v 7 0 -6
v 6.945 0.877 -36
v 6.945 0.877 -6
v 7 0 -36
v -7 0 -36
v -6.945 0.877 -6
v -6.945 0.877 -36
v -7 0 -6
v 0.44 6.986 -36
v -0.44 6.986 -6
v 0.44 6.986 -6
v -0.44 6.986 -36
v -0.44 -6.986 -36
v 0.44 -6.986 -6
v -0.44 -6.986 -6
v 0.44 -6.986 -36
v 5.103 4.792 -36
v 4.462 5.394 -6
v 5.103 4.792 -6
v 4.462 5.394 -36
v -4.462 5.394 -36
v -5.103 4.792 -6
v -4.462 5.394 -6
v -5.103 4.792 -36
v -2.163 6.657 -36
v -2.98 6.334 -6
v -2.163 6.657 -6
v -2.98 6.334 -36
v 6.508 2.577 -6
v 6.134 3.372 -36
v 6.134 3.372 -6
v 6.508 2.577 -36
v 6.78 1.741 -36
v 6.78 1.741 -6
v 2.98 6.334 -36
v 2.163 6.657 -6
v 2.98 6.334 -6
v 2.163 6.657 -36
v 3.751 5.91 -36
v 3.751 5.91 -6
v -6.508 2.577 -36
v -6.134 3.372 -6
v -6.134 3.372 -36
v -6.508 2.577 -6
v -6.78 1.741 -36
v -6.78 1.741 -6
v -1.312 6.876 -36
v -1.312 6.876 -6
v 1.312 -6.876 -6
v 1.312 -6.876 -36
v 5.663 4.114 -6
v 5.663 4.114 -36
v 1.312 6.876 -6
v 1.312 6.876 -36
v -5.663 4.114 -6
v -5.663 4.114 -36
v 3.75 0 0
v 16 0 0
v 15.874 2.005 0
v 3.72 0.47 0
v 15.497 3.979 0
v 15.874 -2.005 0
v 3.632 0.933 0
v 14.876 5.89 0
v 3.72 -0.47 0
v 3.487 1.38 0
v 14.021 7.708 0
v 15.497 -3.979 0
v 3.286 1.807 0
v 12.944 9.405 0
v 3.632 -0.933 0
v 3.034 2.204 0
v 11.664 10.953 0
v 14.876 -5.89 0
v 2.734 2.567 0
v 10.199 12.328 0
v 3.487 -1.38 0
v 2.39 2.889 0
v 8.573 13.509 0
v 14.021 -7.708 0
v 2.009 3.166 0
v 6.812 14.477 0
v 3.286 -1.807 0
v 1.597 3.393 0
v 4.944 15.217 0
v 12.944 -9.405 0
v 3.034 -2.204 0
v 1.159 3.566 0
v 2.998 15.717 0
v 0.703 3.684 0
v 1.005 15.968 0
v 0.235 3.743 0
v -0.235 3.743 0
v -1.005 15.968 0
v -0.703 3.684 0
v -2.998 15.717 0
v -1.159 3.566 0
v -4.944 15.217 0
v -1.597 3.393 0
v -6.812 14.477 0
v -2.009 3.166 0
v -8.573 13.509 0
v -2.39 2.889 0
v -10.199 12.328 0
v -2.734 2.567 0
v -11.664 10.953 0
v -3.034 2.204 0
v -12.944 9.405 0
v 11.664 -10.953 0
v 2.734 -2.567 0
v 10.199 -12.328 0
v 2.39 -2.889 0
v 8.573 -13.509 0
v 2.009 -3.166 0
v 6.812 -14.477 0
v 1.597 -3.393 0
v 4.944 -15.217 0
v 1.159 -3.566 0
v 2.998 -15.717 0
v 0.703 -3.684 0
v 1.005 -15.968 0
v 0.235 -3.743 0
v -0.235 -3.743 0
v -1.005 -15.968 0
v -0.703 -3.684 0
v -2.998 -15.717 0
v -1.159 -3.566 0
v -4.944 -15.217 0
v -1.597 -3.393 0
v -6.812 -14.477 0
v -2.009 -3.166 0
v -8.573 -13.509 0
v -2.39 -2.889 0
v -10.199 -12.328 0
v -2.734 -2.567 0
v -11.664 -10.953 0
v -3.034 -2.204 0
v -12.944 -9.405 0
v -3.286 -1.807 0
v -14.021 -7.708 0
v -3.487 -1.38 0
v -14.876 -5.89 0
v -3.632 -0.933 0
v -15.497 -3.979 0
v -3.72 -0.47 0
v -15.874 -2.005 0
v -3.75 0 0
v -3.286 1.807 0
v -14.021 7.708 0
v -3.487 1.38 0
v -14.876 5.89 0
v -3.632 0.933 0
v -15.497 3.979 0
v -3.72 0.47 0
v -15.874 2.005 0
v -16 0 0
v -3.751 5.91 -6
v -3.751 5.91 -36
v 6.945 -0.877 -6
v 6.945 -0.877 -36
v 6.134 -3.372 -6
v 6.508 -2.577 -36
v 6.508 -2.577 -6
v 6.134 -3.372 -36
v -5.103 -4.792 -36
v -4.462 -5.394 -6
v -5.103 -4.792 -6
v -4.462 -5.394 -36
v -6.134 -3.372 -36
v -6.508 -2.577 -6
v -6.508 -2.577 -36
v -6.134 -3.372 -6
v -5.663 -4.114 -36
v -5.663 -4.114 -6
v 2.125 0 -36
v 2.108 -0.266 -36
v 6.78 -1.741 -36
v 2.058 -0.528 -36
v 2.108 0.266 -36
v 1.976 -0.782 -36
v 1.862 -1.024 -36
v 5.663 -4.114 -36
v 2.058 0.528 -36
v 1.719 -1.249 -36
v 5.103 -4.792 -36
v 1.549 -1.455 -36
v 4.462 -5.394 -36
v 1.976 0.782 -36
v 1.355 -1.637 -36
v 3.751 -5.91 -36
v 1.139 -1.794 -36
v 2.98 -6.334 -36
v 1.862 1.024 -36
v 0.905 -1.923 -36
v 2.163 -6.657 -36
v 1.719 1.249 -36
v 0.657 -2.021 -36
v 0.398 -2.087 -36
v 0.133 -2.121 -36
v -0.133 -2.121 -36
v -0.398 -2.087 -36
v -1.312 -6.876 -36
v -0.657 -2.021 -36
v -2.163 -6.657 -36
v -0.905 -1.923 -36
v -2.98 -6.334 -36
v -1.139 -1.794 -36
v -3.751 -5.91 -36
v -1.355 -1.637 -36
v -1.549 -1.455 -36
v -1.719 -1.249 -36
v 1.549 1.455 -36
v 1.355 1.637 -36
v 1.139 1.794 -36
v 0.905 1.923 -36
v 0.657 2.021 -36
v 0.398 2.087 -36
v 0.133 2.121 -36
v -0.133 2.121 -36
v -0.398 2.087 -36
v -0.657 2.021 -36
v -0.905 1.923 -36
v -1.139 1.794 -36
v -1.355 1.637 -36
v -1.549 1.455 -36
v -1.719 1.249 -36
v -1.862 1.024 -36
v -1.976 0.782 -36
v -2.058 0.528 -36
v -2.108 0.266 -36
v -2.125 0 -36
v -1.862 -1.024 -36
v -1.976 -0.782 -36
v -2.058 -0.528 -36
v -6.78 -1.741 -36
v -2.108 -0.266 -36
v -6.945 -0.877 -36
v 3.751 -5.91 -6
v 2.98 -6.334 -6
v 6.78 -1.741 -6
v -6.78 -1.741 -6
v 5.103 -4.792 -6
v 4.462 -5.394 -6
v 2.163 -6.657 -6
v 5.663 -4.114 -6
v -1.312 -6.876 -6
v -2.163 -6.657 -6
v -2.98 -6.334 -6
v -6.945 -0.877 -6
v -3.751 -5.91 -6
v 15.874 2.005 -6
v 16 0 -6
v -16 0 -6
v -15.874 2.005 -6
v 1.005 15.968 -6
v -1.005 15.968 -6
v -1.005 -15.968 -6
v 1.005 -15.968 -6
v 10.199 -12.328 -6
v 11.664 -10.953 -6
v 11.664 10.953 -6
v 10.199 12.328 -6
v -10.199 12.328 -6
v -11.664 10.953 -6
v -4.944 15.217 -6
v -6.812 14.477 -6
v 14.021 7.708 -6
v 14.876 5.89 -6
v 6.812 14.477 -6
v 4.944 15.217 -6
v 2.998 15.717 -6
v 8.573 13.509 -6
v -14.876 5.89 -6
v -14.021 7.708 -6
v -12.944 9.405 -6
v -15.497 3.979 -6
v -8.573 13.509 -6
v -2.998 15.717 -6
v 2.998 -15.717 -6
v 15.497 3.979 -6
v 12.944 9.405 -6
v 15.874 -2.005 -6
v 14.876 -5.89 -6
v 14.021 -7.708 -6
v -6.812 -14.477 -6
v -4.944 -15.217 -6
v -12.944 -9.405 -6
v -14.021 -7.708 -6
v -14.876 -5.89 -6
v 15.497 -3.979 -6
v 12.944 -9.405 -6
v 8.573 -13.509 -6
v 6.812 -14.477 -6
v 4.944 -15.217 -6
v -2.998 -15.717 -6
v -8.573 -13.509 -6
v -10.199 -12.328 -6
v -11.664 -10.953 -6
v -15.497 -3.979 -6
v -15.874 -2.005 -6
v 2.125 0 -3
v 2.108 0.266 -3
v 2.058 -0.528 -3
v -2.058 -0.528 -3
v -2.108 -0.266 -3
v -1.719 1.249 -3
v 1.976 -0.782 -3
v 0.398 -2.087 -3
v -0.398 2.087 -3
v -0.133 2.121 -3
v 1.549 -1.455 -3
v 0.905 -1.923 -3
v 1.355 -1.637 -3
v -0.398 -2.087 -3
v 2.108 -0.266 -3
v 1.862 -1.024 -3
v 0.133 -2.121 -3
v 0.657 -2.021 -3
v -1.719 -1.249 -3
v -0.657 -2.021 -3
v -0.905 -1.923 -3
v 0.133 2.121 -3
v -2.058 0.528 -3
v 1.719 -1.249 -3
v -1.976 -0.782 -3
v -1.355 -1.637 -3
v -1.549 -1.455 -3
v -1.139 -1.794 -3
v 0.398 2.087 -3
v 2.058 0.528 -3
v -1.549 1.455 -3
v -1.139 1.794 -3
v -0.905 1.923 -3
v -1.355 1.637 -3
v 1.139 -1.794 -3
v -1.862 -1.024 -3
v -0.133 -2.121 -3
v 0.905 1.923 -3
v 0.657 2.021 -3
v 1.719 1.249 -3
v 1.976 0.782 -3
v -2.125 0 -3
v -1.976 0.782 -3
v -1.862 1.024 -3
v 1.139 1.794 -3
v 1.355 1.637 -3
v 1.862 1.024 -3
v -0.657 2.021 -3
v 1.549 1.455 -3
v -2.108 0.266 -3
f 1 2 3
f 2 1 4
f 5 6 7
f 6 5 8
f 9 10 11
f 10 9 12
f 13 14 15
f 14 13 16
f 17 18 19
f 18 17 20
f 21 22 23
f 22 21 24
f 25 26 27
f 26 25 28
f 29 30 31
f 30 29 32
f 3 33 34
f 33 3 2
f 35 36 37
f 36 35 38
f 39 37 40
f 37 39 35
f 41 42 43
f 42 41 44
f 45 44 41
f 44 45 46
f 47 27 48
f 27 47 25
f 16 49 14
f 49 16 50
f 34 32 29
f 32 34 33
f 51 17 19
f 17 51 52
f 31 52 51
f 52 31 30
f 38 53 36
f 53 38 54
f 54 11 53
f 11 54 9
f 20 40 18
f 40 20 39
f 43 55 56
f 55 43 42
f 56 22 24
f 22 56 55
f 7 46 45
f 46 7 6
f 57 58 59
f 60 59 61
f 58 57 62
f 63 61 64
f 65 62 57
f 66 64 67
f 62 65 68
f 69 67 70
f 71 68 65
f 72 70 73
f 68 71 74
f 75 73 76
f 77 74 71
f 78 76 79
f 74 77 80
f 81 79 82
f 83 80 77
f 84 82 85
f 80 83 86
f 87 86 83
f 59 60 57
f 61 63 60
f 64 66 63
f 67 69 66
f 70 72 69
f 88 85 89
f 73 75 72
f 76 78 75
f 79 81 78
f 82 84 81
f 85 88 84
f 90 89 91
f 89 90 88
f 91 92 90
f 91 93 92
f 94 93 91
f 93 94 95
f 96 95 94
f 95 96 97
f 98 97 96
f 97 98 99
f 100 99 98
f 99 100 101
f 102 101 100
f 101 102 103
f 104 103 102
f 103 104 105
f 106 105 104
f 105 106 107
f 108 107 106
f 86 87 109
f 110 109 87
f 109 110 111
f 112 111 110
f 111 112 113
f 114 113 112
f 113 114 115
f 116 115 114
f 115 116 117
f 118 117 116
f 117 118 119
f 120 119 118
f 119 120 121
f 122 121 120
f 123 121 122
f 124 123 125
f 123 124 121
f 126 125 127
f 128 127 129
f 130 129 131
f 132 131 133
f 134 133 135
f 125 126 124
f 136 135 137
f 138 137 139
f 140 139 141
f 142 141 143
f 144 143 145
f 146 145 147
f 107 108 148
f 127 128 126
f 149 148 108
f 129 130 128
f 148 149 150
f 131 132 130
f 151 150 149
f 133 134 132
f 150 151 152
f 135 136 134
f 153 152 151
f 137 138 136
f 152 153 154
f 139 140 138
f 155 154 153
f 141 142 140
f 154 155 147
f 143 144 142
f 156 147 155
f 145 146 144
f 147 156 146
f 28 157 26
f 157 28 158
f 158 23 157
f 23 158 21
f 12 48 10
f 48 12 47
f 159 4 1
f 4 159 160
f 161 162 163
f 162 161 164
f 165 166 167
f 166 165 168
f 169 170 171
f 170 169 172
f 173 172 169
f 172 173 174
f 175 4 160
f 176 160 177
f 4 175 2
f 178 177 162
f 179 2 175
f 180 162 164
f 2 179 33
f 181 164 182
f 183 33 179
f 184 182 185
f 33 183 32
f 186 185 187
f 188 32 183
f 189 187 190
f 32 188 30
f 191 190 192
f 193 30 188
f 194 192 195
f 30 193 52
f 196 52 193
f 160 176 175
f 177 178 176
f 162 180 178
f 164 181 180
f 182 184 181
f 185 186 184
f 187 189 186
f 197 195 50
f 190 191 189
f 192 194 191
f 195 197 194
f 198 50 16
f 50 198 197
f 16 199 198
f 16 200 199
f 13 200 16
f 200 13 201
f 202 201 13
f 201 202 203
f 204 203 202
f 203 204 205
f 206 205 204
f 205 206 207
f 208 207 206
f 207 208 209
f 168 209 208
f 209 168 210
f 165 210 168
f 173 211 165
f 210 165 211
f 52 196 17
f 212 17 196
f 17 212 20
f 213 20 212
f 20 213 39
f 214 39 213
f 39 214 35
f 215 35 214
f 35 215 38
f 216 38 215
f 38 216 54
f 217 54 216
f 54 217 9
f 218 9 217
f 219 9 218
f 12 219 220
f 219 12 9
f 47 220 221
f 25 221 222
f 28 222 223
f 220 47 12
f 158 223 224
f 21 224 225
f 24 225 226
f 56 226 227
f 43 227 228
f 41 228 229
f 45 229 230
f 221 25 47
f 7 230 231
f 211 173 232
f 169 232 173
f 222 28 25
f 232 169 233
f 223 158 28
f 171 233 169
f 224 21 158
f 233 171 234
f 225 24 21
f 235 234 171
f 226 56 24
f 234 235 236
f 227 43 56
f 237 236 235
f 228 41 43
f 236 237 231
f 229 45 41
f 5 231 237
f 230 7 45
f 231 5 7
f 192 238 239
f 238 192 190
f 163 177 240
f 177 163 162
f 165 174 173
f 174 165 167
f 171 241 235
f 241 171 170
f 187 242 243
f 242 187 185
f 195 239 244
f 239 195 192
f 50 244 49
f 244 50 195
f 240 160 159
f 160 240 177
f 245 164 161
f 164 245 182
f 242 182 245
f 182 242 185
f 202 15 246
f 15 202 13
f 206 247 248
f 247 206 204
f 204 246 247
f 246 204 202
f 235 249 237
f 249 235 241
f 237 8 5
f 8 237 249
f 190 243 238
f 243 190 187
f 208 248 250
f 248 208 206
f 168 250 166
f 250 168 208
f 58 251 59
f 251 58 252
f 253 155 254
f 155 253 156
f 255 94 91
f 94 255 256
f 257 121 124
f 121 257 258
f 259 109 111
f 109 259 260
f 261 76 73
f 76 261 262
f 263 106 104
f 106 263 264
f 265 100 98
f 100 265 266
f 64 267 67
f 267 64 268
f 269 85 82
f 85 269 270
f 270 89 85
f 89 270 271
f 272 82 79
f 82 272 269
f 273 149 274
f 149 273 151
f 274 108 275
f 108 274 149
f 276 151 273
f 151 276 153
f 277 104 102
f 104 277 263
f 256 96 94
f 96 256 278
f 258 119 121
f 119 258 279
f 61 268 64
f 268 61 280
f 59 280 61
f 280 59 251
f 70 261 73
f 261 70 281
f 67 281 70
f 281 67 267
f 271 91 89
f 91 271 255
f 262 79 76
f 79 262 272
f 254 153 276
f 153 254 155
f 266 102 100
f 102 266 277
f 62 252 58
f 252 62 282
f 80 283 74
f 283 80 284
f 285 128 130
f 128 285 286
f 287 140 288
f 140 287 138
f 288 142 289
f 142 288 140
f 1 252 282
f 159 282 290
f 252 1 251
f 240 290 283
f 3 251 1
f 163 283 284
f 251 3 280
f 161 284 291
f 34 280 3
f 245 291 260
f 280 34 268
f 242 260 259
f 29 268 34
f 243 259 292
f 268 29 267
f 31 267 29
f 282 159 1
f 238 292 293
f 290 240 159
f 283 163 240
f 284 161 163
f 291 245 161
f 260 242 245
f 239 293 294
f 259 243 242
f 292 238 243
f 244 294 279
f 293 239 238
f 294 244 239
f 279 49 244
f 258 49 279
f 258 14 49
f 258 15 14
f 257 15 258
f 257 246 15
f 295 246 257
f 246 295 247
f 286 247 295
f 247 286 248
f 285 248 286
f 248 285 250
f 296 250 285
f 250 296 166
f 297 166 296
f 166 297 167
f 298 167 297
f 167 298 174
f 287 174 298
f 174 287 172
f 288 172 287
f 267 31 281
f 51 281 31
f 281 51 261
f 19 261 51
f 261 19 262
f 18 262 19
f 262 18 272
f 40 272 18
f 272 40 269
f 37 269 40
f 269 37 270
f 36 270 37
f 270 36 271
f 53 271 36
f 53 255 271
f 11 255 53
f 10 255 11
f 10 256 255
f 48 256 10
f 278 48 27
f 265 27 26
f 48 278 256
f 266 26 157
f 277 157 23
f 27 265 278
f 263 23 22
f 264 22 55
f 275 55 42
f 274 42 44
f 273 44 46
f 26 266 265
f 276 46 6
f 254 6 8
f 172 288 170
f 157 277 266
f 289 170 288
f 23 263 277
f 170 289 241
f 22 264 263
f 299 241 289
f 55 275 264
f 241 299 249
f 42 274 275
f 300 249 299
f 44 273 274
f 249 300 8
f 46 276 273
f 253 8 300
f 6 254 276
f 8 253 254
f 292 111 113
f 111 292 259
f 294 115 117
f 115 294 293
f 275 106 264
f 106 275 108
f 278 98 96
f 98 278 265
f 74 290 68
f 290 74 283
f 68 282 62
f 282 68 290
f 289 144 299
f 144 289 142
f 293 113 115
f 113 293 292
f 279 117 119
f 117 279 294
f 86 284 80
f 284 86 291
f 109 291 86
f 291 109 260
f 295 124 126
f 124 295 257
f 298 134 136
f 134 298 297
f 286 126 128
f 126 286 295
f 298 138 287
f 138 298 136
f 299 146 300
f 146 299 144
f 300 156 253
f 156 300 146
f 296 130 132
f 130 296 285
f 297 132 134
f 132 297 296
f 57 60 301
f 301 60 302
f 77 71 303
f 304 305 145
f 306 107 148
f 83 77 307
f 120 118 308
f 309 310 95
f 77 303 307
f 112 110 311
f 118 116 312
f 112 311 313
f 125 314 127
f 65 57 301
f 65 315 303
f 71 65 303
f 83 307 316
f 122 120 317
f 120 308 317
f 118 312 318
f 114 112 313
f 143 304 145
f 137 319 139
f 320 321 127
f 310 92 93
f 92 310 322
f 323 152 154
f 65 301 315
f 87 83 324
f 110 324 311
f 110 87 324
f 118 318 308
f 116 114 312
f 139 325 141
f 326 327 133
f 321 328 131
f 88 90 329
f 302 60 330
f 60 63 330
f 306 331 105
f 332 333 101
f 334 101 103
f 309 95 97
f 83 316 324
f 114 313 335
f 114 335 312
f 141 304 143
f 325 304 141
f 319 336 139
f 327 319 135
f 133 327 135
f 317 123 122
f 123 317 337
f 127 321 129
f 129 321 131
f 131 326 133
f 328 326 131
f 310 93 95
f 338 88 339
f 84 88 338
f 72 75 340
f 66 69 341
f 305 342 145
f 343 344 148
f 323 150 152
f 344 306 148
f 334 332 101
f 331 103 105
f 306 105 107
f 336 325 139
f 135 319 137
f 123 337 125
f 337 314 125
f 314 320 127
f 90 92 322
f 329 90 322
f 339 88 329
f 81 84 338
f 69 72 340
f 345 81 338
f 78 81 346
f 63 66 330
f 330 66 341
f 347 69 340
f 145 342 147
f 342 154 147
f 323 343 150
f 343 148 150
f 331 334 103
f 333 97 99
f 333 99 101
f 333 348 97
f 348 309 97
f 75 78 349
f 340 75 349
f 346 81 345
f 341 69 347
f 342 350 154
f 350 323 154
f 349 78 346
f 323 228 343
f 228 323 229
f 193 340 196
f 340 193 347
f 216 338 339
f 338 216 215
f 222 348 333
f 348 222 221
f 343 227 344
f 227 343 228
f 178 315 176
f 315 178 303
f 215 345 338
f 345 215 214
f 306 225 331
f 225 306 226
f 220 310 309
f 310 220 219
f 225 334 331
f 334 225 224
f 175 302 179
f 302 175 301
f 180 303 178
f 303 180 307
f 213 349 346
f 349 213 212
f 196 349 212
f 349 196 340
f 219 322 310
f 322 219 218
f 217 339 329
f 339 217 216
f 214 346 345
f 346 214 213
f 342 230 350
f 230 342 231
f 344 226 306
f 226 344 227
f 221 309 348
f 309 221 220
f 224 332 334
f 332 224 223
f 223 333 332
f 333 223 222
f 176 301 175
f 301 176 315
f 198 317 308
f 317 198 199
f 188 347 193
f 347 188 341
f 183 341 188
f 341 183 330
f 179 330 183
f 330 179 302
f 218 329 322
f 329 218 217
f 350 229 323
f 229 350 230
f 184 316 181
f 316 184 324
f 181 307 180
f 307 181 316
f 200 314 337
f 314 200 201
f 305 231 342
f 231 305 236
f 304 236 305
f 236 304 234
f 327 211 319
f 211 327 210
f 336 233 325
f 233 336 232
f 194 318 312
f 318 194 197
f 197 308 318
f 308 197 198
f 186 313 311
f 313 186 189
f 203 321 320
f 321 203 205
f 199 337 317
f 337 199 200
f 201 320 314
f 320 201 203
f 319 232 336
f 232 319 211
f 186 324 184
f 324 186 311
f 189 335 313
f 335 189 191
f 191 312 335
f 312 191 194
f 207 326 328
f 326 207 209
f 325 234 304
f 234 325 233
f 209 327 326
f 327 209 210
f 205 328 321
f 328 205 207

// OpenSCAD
$fn = 50;


difference() {
	union() {
		translate(v = [0, 0, -36.0000000000]) {
			cylinder(h = 36, r = 7.0000000000);
		}
		translate(v = [0, 0, -6.0000000000]) {
			cylinder(h = 6, r = 16.0000000000);
		}
	}
	union() {
		translate(v = [0, 0, 0]) {
			rotate(a = [0, 0, 0]) {
				difference() {
					union() {
						#translate(v = [0, 0, -36.0000000000]) {
							cylinder(h = 36, r = 2.0000000000);
						}
						#translate(v = [0, 0, -3]) {
							cylinder(h = 3, r1 = 2.1250000000, r2 = 3.7500000000);
						}
						#translate(v = [0, 0, -36.0000000000]) {
							cylinder(h = 36, r = 2.1250000000);
						}
						#translate(v = [0, 0, -36.0000000000]) {
							cylinder(h = 36, r = 2.0000000000);
						}
					}
					union();
				}
			}
		}
	}
}
